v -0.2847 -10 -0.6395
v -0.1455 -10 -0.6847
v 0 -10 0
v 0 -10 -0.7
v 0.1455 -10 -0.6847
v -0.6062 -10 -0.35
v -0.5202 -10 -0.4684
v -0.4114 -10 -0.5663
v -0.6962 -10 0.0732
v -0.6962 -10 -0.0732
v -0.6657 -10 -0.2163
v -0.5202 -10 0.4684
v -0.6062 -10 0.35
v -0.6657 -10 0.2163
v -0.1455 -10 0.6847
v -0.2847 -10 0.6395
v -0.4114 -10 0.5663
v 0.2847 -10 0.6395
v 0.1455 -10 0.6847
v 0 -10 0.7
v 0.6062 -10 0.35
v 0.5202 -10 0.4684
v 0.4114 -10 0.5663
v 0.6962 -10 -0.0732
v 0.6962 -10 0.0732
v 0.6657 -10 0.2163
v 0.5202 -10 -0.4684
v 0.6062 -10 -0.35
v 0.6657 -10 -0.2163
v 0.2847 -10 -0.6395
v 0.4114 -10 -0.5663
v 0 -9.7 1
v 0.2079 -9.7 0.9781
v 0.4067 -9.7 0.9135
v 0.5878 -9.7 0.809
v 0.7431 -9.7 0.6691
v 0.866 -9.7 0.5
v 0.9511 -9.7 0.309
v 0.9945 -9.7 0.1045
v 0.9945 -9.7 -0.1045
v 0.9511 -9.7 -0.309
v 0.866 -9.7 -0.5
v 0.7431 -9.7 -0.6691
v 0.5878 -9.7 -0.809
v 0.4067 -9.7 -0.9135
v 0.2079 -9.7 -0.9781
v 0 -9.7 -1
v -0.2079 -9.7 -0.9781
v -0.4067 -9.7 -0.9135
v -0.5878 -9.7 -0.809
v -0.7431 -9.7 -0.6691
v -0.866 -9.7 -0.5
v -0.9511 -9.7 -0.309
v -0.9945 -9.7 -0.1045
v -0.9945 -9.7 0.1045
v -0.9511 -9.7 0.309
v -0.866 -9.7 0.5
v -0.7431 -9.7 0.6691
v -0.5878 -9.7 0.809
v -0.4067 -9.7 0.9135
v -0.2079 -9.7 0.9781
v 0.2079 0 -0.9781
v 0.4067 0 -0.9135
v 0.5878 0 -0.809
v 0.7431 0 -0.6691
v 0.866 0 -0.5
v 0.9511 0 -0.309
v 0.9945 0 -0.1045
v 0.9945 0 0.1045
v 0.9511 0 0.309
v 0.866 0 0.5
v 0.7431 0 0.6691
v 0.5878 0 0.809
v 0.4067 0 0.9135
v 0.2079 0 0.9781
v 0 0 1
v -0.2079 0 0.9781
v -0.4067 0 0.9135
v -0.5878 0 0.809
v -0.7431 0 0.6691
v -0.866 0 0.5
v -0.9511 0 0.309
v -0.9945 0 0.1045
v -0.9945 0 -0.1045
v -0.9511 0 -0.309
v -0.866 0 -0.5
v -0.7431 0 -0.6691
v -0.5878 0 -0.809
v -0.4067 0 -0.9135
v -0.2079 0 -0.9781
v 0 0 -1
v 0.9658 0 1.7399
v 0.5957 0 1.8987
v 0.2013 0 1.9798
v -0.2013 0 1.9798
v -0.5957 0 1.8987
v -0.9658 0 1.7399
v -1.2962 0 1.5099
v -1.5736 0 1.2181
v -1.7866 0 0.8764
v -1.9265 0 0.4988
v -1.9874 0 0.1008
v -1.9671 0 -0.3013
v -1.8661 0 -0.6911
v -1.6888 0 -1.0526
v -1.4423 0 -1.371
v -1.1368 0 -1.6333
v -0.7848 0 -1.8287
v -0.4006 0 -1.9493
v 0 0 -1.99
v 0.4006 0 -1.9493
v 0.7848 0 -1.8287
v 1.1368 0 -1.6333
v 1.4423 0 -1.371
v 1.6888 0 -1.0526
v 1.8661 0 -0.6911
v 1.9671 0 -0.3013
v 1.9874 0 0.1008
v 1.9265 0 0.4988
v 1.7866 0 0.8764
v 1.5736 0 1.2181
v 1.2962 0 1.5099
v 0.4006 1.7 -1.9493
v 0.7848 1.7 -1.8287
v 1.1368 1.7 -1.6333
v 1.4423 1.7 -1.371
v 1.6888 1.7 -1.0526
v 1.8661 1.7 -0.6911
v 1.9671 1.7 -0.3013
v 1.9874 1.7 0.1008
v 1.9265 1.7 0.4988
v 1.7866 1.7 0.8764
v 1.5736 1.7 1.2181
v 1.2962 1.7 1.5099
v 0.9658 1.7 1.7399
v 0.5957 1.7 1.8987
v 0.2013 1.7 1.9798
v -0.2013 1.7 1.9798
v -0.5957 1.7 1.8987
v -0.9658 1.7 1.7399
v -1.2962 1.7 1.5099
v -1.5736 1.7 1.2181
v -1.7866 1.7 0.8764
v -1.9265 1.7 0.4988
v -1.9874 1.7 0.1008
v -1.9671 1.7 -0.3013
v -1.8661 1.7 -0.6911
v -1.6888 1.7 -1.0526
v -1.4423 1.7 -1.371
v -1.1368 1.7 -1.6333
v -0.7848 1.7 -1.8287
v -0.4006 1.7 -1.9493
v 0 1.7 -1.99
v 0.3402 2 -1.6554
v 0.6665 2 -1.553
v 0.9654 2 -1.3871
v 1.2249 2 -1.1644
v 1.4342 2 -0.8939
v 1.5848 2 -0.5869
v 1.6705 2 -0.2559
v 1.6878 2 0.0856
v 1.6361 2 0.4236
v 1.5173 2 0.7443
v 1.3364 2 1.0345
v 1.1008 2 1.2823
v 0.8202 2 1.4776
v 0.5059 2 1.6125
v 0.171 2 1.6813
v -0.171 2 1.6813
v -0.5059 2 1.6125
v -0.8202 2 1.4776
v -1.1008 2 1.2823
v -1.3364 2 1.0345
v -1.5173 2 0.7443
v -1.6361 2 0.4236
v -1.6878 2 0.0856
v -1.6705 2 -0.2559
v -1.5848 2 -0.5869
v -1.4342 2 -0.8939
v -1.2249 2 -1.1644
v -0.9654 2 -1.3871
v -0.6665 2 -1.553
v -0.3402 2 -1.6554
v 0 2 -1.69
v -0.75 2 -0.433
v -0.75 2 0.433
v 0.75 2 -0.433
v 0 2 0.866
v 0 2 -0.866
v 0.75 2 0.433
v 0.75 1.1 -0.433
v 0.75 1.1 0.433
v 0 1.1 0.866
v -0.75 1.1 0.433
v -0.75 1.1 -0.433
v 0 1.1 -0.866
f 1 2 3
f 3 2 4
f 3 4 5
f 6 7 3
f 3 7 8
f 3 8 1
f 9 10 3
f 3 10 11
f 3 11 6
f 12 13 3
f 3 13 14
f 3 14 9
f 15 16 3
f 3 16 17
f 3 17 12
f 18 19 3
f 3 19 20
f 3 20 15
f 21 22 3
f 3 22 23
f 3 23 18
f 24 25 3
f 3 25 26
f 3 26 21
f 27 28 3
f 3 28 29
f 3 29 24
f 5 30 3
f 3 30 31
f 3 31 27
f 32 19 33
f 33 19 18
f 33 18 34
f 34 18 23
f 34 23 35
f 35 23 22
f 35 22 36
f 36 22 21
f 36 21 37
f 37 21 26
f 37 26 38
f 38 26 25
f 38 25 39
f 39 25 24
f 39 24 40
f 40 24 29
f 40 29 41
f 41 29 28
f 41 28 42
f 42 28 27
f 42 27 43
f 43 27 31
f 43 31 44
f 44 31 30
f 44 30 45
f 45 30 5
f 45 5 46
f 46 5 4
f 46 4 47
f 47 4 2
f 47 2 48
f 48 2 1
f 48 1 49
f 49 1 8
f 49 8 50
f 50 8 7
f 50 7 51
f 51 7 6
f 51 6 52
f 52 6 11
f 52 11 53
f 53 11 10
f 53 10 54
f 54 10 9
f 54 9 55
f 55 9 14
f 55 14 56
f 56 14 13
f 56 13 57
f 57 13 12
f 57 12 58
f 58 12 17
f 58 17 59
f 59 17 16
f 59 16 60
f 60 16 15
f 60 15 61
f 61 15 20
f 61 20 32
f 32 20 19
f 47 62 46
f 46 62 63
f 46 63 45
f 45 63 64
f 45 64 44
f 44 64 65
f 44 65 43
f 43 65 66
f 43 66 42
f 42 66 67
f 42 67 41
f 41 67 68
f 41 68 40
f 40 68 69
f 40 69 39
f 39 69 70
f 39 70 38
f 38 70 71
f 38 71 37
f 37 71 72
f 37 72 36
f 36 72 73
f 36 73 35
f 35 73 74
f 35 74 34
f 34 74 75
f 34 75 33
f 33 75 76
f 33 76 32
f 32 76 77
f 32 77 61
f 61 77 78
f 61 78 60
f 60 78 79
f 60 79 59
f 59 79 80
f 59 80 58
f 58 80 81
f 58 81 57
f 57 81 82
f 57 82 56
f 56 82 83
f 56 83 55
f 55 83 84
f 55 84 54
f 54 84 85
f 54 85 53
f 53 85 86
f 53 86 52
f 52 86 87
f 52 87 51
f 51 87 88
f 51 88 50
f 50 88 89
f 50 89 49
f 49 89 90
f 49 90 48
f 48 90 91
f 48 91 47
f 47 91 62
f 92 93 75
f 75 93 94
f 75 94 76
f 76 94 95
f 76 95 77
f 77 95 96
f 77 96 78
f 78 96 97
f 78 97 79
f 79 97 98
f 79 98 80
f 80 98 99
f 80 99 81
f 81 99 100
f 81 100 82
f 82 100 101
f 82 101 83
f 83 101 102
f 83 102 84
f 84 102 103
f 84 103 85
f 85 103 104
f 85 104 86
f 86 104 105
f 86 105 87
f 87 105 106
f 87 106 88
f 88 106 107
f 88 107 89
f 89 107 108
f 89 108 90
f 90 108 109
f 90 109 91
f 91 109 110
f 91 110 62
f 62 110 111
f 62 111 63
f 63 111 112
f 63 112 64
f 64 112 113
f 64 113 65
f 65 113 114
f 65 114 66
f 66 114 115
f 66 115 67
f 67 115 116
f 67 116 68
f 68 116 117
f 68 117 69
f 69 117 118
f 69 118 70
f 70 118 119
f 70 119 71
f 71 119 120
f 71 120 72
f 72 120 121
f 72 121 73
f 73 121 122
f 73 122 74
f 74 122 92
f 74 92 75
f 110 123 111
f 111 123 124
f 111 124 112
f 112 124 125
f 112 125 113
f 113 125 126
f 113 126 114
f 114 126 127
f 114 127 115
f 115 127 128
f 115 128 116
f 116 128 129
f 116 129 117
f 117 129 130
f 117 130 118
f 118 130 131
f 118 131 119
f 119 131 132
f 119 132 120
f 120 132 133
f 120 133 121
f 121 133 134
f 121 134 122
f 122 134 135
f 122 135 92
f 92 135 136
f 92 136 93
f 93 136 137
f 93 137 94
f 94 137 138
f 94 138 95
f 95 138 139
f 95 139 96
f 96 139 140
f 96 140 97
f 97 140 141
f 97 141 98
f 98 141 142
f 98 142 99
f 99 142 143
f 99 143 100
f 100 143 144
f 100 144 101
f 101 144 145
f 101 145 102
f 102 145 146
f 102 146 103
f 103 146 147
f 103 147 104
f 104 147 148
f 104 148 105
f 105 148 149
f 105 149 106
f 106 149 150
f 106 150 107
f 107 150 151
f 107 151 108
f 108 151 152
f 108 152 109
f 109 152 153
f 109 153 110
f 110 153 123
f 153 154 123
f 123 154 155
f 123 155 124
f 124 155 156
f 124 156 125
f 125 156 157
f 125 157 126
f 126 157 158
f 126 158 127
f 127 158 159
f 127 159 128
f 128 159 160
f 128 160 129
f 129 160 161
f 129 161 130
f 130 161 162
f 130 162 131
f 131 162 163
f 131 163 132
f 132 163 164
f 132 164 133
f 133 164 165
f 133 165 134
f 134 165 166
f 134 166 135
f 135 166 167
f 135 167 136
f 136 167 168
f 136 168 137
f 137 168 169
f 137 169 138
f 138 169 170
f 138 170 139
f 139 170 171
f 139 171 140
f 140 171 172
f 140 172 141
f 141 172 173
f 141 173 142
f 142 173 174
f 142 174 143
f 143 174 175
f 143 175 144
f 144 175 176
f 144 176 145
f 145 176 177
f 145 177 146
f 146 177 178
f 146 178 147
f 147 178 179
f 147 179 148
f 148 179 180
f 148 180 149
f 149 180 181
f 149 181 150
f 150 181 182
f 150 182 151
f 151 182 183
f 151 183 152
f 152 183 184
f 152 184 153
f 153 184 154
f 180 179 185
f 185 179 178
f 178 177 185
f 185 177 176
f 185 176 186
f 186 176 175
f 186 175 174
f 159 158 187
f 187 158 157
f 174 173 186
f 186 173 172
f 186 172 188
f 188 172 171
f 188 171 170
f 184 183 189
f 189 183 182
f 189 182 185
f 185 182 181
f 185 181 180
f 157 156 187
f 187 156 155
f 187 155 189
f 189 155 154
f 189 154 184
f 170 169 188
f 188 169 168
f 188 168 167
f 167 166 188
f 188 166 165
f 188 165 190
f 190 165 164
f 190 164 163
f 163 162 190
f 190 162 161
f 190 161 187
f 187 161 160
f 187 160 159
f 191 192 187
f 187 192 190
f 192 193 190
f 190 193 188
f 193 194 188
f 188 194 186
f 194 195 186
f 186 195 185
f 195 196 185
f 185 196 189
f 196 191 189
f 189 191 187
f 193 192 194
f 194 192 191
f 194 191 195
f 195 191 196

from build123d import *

# Parameters (mm, degrees)
CUT_EXTRUDE1_DEPTH = 0.9


with BuildPart() as part:
    # Sketch1 → Revolve1 (revolve)
    with BuildSketch(Plane.XY, mode=Mode.PRIVATE) as revolve1_sk:
        Polygon((0, -10), (0.7, -10), (1, -9.7), (1, 0), (1.99, 0), (1.99, 1.7), (1.69, 2), (0, 2), align=None)
    revolve(revolve1_sk.sketch.rotate(Axis((0, -10, 0), (0, 1, 0)), 90), axis=Axis((0, -10, 0), (0, 1, 0)))

    # Sketch2 → Cut-Extrude1 (cut)
    with BuildSketch(Plane(origin=(0, 2, 0), x_dir=(1, 0, 0), z_dir=(0, 1, 0))):
        Polygon((0.75, -0.433012702), (0, -0.866025404), (-0.75, -0.433012702), (-0.75, 0.433012702), (0, 0.866025404), (0.75, 0.433012702), align=None)
    extrude(amount=-CUT_EXTRUDE1_DEPTH, mode=Mode.SUBTRACT)


solid = part.part
